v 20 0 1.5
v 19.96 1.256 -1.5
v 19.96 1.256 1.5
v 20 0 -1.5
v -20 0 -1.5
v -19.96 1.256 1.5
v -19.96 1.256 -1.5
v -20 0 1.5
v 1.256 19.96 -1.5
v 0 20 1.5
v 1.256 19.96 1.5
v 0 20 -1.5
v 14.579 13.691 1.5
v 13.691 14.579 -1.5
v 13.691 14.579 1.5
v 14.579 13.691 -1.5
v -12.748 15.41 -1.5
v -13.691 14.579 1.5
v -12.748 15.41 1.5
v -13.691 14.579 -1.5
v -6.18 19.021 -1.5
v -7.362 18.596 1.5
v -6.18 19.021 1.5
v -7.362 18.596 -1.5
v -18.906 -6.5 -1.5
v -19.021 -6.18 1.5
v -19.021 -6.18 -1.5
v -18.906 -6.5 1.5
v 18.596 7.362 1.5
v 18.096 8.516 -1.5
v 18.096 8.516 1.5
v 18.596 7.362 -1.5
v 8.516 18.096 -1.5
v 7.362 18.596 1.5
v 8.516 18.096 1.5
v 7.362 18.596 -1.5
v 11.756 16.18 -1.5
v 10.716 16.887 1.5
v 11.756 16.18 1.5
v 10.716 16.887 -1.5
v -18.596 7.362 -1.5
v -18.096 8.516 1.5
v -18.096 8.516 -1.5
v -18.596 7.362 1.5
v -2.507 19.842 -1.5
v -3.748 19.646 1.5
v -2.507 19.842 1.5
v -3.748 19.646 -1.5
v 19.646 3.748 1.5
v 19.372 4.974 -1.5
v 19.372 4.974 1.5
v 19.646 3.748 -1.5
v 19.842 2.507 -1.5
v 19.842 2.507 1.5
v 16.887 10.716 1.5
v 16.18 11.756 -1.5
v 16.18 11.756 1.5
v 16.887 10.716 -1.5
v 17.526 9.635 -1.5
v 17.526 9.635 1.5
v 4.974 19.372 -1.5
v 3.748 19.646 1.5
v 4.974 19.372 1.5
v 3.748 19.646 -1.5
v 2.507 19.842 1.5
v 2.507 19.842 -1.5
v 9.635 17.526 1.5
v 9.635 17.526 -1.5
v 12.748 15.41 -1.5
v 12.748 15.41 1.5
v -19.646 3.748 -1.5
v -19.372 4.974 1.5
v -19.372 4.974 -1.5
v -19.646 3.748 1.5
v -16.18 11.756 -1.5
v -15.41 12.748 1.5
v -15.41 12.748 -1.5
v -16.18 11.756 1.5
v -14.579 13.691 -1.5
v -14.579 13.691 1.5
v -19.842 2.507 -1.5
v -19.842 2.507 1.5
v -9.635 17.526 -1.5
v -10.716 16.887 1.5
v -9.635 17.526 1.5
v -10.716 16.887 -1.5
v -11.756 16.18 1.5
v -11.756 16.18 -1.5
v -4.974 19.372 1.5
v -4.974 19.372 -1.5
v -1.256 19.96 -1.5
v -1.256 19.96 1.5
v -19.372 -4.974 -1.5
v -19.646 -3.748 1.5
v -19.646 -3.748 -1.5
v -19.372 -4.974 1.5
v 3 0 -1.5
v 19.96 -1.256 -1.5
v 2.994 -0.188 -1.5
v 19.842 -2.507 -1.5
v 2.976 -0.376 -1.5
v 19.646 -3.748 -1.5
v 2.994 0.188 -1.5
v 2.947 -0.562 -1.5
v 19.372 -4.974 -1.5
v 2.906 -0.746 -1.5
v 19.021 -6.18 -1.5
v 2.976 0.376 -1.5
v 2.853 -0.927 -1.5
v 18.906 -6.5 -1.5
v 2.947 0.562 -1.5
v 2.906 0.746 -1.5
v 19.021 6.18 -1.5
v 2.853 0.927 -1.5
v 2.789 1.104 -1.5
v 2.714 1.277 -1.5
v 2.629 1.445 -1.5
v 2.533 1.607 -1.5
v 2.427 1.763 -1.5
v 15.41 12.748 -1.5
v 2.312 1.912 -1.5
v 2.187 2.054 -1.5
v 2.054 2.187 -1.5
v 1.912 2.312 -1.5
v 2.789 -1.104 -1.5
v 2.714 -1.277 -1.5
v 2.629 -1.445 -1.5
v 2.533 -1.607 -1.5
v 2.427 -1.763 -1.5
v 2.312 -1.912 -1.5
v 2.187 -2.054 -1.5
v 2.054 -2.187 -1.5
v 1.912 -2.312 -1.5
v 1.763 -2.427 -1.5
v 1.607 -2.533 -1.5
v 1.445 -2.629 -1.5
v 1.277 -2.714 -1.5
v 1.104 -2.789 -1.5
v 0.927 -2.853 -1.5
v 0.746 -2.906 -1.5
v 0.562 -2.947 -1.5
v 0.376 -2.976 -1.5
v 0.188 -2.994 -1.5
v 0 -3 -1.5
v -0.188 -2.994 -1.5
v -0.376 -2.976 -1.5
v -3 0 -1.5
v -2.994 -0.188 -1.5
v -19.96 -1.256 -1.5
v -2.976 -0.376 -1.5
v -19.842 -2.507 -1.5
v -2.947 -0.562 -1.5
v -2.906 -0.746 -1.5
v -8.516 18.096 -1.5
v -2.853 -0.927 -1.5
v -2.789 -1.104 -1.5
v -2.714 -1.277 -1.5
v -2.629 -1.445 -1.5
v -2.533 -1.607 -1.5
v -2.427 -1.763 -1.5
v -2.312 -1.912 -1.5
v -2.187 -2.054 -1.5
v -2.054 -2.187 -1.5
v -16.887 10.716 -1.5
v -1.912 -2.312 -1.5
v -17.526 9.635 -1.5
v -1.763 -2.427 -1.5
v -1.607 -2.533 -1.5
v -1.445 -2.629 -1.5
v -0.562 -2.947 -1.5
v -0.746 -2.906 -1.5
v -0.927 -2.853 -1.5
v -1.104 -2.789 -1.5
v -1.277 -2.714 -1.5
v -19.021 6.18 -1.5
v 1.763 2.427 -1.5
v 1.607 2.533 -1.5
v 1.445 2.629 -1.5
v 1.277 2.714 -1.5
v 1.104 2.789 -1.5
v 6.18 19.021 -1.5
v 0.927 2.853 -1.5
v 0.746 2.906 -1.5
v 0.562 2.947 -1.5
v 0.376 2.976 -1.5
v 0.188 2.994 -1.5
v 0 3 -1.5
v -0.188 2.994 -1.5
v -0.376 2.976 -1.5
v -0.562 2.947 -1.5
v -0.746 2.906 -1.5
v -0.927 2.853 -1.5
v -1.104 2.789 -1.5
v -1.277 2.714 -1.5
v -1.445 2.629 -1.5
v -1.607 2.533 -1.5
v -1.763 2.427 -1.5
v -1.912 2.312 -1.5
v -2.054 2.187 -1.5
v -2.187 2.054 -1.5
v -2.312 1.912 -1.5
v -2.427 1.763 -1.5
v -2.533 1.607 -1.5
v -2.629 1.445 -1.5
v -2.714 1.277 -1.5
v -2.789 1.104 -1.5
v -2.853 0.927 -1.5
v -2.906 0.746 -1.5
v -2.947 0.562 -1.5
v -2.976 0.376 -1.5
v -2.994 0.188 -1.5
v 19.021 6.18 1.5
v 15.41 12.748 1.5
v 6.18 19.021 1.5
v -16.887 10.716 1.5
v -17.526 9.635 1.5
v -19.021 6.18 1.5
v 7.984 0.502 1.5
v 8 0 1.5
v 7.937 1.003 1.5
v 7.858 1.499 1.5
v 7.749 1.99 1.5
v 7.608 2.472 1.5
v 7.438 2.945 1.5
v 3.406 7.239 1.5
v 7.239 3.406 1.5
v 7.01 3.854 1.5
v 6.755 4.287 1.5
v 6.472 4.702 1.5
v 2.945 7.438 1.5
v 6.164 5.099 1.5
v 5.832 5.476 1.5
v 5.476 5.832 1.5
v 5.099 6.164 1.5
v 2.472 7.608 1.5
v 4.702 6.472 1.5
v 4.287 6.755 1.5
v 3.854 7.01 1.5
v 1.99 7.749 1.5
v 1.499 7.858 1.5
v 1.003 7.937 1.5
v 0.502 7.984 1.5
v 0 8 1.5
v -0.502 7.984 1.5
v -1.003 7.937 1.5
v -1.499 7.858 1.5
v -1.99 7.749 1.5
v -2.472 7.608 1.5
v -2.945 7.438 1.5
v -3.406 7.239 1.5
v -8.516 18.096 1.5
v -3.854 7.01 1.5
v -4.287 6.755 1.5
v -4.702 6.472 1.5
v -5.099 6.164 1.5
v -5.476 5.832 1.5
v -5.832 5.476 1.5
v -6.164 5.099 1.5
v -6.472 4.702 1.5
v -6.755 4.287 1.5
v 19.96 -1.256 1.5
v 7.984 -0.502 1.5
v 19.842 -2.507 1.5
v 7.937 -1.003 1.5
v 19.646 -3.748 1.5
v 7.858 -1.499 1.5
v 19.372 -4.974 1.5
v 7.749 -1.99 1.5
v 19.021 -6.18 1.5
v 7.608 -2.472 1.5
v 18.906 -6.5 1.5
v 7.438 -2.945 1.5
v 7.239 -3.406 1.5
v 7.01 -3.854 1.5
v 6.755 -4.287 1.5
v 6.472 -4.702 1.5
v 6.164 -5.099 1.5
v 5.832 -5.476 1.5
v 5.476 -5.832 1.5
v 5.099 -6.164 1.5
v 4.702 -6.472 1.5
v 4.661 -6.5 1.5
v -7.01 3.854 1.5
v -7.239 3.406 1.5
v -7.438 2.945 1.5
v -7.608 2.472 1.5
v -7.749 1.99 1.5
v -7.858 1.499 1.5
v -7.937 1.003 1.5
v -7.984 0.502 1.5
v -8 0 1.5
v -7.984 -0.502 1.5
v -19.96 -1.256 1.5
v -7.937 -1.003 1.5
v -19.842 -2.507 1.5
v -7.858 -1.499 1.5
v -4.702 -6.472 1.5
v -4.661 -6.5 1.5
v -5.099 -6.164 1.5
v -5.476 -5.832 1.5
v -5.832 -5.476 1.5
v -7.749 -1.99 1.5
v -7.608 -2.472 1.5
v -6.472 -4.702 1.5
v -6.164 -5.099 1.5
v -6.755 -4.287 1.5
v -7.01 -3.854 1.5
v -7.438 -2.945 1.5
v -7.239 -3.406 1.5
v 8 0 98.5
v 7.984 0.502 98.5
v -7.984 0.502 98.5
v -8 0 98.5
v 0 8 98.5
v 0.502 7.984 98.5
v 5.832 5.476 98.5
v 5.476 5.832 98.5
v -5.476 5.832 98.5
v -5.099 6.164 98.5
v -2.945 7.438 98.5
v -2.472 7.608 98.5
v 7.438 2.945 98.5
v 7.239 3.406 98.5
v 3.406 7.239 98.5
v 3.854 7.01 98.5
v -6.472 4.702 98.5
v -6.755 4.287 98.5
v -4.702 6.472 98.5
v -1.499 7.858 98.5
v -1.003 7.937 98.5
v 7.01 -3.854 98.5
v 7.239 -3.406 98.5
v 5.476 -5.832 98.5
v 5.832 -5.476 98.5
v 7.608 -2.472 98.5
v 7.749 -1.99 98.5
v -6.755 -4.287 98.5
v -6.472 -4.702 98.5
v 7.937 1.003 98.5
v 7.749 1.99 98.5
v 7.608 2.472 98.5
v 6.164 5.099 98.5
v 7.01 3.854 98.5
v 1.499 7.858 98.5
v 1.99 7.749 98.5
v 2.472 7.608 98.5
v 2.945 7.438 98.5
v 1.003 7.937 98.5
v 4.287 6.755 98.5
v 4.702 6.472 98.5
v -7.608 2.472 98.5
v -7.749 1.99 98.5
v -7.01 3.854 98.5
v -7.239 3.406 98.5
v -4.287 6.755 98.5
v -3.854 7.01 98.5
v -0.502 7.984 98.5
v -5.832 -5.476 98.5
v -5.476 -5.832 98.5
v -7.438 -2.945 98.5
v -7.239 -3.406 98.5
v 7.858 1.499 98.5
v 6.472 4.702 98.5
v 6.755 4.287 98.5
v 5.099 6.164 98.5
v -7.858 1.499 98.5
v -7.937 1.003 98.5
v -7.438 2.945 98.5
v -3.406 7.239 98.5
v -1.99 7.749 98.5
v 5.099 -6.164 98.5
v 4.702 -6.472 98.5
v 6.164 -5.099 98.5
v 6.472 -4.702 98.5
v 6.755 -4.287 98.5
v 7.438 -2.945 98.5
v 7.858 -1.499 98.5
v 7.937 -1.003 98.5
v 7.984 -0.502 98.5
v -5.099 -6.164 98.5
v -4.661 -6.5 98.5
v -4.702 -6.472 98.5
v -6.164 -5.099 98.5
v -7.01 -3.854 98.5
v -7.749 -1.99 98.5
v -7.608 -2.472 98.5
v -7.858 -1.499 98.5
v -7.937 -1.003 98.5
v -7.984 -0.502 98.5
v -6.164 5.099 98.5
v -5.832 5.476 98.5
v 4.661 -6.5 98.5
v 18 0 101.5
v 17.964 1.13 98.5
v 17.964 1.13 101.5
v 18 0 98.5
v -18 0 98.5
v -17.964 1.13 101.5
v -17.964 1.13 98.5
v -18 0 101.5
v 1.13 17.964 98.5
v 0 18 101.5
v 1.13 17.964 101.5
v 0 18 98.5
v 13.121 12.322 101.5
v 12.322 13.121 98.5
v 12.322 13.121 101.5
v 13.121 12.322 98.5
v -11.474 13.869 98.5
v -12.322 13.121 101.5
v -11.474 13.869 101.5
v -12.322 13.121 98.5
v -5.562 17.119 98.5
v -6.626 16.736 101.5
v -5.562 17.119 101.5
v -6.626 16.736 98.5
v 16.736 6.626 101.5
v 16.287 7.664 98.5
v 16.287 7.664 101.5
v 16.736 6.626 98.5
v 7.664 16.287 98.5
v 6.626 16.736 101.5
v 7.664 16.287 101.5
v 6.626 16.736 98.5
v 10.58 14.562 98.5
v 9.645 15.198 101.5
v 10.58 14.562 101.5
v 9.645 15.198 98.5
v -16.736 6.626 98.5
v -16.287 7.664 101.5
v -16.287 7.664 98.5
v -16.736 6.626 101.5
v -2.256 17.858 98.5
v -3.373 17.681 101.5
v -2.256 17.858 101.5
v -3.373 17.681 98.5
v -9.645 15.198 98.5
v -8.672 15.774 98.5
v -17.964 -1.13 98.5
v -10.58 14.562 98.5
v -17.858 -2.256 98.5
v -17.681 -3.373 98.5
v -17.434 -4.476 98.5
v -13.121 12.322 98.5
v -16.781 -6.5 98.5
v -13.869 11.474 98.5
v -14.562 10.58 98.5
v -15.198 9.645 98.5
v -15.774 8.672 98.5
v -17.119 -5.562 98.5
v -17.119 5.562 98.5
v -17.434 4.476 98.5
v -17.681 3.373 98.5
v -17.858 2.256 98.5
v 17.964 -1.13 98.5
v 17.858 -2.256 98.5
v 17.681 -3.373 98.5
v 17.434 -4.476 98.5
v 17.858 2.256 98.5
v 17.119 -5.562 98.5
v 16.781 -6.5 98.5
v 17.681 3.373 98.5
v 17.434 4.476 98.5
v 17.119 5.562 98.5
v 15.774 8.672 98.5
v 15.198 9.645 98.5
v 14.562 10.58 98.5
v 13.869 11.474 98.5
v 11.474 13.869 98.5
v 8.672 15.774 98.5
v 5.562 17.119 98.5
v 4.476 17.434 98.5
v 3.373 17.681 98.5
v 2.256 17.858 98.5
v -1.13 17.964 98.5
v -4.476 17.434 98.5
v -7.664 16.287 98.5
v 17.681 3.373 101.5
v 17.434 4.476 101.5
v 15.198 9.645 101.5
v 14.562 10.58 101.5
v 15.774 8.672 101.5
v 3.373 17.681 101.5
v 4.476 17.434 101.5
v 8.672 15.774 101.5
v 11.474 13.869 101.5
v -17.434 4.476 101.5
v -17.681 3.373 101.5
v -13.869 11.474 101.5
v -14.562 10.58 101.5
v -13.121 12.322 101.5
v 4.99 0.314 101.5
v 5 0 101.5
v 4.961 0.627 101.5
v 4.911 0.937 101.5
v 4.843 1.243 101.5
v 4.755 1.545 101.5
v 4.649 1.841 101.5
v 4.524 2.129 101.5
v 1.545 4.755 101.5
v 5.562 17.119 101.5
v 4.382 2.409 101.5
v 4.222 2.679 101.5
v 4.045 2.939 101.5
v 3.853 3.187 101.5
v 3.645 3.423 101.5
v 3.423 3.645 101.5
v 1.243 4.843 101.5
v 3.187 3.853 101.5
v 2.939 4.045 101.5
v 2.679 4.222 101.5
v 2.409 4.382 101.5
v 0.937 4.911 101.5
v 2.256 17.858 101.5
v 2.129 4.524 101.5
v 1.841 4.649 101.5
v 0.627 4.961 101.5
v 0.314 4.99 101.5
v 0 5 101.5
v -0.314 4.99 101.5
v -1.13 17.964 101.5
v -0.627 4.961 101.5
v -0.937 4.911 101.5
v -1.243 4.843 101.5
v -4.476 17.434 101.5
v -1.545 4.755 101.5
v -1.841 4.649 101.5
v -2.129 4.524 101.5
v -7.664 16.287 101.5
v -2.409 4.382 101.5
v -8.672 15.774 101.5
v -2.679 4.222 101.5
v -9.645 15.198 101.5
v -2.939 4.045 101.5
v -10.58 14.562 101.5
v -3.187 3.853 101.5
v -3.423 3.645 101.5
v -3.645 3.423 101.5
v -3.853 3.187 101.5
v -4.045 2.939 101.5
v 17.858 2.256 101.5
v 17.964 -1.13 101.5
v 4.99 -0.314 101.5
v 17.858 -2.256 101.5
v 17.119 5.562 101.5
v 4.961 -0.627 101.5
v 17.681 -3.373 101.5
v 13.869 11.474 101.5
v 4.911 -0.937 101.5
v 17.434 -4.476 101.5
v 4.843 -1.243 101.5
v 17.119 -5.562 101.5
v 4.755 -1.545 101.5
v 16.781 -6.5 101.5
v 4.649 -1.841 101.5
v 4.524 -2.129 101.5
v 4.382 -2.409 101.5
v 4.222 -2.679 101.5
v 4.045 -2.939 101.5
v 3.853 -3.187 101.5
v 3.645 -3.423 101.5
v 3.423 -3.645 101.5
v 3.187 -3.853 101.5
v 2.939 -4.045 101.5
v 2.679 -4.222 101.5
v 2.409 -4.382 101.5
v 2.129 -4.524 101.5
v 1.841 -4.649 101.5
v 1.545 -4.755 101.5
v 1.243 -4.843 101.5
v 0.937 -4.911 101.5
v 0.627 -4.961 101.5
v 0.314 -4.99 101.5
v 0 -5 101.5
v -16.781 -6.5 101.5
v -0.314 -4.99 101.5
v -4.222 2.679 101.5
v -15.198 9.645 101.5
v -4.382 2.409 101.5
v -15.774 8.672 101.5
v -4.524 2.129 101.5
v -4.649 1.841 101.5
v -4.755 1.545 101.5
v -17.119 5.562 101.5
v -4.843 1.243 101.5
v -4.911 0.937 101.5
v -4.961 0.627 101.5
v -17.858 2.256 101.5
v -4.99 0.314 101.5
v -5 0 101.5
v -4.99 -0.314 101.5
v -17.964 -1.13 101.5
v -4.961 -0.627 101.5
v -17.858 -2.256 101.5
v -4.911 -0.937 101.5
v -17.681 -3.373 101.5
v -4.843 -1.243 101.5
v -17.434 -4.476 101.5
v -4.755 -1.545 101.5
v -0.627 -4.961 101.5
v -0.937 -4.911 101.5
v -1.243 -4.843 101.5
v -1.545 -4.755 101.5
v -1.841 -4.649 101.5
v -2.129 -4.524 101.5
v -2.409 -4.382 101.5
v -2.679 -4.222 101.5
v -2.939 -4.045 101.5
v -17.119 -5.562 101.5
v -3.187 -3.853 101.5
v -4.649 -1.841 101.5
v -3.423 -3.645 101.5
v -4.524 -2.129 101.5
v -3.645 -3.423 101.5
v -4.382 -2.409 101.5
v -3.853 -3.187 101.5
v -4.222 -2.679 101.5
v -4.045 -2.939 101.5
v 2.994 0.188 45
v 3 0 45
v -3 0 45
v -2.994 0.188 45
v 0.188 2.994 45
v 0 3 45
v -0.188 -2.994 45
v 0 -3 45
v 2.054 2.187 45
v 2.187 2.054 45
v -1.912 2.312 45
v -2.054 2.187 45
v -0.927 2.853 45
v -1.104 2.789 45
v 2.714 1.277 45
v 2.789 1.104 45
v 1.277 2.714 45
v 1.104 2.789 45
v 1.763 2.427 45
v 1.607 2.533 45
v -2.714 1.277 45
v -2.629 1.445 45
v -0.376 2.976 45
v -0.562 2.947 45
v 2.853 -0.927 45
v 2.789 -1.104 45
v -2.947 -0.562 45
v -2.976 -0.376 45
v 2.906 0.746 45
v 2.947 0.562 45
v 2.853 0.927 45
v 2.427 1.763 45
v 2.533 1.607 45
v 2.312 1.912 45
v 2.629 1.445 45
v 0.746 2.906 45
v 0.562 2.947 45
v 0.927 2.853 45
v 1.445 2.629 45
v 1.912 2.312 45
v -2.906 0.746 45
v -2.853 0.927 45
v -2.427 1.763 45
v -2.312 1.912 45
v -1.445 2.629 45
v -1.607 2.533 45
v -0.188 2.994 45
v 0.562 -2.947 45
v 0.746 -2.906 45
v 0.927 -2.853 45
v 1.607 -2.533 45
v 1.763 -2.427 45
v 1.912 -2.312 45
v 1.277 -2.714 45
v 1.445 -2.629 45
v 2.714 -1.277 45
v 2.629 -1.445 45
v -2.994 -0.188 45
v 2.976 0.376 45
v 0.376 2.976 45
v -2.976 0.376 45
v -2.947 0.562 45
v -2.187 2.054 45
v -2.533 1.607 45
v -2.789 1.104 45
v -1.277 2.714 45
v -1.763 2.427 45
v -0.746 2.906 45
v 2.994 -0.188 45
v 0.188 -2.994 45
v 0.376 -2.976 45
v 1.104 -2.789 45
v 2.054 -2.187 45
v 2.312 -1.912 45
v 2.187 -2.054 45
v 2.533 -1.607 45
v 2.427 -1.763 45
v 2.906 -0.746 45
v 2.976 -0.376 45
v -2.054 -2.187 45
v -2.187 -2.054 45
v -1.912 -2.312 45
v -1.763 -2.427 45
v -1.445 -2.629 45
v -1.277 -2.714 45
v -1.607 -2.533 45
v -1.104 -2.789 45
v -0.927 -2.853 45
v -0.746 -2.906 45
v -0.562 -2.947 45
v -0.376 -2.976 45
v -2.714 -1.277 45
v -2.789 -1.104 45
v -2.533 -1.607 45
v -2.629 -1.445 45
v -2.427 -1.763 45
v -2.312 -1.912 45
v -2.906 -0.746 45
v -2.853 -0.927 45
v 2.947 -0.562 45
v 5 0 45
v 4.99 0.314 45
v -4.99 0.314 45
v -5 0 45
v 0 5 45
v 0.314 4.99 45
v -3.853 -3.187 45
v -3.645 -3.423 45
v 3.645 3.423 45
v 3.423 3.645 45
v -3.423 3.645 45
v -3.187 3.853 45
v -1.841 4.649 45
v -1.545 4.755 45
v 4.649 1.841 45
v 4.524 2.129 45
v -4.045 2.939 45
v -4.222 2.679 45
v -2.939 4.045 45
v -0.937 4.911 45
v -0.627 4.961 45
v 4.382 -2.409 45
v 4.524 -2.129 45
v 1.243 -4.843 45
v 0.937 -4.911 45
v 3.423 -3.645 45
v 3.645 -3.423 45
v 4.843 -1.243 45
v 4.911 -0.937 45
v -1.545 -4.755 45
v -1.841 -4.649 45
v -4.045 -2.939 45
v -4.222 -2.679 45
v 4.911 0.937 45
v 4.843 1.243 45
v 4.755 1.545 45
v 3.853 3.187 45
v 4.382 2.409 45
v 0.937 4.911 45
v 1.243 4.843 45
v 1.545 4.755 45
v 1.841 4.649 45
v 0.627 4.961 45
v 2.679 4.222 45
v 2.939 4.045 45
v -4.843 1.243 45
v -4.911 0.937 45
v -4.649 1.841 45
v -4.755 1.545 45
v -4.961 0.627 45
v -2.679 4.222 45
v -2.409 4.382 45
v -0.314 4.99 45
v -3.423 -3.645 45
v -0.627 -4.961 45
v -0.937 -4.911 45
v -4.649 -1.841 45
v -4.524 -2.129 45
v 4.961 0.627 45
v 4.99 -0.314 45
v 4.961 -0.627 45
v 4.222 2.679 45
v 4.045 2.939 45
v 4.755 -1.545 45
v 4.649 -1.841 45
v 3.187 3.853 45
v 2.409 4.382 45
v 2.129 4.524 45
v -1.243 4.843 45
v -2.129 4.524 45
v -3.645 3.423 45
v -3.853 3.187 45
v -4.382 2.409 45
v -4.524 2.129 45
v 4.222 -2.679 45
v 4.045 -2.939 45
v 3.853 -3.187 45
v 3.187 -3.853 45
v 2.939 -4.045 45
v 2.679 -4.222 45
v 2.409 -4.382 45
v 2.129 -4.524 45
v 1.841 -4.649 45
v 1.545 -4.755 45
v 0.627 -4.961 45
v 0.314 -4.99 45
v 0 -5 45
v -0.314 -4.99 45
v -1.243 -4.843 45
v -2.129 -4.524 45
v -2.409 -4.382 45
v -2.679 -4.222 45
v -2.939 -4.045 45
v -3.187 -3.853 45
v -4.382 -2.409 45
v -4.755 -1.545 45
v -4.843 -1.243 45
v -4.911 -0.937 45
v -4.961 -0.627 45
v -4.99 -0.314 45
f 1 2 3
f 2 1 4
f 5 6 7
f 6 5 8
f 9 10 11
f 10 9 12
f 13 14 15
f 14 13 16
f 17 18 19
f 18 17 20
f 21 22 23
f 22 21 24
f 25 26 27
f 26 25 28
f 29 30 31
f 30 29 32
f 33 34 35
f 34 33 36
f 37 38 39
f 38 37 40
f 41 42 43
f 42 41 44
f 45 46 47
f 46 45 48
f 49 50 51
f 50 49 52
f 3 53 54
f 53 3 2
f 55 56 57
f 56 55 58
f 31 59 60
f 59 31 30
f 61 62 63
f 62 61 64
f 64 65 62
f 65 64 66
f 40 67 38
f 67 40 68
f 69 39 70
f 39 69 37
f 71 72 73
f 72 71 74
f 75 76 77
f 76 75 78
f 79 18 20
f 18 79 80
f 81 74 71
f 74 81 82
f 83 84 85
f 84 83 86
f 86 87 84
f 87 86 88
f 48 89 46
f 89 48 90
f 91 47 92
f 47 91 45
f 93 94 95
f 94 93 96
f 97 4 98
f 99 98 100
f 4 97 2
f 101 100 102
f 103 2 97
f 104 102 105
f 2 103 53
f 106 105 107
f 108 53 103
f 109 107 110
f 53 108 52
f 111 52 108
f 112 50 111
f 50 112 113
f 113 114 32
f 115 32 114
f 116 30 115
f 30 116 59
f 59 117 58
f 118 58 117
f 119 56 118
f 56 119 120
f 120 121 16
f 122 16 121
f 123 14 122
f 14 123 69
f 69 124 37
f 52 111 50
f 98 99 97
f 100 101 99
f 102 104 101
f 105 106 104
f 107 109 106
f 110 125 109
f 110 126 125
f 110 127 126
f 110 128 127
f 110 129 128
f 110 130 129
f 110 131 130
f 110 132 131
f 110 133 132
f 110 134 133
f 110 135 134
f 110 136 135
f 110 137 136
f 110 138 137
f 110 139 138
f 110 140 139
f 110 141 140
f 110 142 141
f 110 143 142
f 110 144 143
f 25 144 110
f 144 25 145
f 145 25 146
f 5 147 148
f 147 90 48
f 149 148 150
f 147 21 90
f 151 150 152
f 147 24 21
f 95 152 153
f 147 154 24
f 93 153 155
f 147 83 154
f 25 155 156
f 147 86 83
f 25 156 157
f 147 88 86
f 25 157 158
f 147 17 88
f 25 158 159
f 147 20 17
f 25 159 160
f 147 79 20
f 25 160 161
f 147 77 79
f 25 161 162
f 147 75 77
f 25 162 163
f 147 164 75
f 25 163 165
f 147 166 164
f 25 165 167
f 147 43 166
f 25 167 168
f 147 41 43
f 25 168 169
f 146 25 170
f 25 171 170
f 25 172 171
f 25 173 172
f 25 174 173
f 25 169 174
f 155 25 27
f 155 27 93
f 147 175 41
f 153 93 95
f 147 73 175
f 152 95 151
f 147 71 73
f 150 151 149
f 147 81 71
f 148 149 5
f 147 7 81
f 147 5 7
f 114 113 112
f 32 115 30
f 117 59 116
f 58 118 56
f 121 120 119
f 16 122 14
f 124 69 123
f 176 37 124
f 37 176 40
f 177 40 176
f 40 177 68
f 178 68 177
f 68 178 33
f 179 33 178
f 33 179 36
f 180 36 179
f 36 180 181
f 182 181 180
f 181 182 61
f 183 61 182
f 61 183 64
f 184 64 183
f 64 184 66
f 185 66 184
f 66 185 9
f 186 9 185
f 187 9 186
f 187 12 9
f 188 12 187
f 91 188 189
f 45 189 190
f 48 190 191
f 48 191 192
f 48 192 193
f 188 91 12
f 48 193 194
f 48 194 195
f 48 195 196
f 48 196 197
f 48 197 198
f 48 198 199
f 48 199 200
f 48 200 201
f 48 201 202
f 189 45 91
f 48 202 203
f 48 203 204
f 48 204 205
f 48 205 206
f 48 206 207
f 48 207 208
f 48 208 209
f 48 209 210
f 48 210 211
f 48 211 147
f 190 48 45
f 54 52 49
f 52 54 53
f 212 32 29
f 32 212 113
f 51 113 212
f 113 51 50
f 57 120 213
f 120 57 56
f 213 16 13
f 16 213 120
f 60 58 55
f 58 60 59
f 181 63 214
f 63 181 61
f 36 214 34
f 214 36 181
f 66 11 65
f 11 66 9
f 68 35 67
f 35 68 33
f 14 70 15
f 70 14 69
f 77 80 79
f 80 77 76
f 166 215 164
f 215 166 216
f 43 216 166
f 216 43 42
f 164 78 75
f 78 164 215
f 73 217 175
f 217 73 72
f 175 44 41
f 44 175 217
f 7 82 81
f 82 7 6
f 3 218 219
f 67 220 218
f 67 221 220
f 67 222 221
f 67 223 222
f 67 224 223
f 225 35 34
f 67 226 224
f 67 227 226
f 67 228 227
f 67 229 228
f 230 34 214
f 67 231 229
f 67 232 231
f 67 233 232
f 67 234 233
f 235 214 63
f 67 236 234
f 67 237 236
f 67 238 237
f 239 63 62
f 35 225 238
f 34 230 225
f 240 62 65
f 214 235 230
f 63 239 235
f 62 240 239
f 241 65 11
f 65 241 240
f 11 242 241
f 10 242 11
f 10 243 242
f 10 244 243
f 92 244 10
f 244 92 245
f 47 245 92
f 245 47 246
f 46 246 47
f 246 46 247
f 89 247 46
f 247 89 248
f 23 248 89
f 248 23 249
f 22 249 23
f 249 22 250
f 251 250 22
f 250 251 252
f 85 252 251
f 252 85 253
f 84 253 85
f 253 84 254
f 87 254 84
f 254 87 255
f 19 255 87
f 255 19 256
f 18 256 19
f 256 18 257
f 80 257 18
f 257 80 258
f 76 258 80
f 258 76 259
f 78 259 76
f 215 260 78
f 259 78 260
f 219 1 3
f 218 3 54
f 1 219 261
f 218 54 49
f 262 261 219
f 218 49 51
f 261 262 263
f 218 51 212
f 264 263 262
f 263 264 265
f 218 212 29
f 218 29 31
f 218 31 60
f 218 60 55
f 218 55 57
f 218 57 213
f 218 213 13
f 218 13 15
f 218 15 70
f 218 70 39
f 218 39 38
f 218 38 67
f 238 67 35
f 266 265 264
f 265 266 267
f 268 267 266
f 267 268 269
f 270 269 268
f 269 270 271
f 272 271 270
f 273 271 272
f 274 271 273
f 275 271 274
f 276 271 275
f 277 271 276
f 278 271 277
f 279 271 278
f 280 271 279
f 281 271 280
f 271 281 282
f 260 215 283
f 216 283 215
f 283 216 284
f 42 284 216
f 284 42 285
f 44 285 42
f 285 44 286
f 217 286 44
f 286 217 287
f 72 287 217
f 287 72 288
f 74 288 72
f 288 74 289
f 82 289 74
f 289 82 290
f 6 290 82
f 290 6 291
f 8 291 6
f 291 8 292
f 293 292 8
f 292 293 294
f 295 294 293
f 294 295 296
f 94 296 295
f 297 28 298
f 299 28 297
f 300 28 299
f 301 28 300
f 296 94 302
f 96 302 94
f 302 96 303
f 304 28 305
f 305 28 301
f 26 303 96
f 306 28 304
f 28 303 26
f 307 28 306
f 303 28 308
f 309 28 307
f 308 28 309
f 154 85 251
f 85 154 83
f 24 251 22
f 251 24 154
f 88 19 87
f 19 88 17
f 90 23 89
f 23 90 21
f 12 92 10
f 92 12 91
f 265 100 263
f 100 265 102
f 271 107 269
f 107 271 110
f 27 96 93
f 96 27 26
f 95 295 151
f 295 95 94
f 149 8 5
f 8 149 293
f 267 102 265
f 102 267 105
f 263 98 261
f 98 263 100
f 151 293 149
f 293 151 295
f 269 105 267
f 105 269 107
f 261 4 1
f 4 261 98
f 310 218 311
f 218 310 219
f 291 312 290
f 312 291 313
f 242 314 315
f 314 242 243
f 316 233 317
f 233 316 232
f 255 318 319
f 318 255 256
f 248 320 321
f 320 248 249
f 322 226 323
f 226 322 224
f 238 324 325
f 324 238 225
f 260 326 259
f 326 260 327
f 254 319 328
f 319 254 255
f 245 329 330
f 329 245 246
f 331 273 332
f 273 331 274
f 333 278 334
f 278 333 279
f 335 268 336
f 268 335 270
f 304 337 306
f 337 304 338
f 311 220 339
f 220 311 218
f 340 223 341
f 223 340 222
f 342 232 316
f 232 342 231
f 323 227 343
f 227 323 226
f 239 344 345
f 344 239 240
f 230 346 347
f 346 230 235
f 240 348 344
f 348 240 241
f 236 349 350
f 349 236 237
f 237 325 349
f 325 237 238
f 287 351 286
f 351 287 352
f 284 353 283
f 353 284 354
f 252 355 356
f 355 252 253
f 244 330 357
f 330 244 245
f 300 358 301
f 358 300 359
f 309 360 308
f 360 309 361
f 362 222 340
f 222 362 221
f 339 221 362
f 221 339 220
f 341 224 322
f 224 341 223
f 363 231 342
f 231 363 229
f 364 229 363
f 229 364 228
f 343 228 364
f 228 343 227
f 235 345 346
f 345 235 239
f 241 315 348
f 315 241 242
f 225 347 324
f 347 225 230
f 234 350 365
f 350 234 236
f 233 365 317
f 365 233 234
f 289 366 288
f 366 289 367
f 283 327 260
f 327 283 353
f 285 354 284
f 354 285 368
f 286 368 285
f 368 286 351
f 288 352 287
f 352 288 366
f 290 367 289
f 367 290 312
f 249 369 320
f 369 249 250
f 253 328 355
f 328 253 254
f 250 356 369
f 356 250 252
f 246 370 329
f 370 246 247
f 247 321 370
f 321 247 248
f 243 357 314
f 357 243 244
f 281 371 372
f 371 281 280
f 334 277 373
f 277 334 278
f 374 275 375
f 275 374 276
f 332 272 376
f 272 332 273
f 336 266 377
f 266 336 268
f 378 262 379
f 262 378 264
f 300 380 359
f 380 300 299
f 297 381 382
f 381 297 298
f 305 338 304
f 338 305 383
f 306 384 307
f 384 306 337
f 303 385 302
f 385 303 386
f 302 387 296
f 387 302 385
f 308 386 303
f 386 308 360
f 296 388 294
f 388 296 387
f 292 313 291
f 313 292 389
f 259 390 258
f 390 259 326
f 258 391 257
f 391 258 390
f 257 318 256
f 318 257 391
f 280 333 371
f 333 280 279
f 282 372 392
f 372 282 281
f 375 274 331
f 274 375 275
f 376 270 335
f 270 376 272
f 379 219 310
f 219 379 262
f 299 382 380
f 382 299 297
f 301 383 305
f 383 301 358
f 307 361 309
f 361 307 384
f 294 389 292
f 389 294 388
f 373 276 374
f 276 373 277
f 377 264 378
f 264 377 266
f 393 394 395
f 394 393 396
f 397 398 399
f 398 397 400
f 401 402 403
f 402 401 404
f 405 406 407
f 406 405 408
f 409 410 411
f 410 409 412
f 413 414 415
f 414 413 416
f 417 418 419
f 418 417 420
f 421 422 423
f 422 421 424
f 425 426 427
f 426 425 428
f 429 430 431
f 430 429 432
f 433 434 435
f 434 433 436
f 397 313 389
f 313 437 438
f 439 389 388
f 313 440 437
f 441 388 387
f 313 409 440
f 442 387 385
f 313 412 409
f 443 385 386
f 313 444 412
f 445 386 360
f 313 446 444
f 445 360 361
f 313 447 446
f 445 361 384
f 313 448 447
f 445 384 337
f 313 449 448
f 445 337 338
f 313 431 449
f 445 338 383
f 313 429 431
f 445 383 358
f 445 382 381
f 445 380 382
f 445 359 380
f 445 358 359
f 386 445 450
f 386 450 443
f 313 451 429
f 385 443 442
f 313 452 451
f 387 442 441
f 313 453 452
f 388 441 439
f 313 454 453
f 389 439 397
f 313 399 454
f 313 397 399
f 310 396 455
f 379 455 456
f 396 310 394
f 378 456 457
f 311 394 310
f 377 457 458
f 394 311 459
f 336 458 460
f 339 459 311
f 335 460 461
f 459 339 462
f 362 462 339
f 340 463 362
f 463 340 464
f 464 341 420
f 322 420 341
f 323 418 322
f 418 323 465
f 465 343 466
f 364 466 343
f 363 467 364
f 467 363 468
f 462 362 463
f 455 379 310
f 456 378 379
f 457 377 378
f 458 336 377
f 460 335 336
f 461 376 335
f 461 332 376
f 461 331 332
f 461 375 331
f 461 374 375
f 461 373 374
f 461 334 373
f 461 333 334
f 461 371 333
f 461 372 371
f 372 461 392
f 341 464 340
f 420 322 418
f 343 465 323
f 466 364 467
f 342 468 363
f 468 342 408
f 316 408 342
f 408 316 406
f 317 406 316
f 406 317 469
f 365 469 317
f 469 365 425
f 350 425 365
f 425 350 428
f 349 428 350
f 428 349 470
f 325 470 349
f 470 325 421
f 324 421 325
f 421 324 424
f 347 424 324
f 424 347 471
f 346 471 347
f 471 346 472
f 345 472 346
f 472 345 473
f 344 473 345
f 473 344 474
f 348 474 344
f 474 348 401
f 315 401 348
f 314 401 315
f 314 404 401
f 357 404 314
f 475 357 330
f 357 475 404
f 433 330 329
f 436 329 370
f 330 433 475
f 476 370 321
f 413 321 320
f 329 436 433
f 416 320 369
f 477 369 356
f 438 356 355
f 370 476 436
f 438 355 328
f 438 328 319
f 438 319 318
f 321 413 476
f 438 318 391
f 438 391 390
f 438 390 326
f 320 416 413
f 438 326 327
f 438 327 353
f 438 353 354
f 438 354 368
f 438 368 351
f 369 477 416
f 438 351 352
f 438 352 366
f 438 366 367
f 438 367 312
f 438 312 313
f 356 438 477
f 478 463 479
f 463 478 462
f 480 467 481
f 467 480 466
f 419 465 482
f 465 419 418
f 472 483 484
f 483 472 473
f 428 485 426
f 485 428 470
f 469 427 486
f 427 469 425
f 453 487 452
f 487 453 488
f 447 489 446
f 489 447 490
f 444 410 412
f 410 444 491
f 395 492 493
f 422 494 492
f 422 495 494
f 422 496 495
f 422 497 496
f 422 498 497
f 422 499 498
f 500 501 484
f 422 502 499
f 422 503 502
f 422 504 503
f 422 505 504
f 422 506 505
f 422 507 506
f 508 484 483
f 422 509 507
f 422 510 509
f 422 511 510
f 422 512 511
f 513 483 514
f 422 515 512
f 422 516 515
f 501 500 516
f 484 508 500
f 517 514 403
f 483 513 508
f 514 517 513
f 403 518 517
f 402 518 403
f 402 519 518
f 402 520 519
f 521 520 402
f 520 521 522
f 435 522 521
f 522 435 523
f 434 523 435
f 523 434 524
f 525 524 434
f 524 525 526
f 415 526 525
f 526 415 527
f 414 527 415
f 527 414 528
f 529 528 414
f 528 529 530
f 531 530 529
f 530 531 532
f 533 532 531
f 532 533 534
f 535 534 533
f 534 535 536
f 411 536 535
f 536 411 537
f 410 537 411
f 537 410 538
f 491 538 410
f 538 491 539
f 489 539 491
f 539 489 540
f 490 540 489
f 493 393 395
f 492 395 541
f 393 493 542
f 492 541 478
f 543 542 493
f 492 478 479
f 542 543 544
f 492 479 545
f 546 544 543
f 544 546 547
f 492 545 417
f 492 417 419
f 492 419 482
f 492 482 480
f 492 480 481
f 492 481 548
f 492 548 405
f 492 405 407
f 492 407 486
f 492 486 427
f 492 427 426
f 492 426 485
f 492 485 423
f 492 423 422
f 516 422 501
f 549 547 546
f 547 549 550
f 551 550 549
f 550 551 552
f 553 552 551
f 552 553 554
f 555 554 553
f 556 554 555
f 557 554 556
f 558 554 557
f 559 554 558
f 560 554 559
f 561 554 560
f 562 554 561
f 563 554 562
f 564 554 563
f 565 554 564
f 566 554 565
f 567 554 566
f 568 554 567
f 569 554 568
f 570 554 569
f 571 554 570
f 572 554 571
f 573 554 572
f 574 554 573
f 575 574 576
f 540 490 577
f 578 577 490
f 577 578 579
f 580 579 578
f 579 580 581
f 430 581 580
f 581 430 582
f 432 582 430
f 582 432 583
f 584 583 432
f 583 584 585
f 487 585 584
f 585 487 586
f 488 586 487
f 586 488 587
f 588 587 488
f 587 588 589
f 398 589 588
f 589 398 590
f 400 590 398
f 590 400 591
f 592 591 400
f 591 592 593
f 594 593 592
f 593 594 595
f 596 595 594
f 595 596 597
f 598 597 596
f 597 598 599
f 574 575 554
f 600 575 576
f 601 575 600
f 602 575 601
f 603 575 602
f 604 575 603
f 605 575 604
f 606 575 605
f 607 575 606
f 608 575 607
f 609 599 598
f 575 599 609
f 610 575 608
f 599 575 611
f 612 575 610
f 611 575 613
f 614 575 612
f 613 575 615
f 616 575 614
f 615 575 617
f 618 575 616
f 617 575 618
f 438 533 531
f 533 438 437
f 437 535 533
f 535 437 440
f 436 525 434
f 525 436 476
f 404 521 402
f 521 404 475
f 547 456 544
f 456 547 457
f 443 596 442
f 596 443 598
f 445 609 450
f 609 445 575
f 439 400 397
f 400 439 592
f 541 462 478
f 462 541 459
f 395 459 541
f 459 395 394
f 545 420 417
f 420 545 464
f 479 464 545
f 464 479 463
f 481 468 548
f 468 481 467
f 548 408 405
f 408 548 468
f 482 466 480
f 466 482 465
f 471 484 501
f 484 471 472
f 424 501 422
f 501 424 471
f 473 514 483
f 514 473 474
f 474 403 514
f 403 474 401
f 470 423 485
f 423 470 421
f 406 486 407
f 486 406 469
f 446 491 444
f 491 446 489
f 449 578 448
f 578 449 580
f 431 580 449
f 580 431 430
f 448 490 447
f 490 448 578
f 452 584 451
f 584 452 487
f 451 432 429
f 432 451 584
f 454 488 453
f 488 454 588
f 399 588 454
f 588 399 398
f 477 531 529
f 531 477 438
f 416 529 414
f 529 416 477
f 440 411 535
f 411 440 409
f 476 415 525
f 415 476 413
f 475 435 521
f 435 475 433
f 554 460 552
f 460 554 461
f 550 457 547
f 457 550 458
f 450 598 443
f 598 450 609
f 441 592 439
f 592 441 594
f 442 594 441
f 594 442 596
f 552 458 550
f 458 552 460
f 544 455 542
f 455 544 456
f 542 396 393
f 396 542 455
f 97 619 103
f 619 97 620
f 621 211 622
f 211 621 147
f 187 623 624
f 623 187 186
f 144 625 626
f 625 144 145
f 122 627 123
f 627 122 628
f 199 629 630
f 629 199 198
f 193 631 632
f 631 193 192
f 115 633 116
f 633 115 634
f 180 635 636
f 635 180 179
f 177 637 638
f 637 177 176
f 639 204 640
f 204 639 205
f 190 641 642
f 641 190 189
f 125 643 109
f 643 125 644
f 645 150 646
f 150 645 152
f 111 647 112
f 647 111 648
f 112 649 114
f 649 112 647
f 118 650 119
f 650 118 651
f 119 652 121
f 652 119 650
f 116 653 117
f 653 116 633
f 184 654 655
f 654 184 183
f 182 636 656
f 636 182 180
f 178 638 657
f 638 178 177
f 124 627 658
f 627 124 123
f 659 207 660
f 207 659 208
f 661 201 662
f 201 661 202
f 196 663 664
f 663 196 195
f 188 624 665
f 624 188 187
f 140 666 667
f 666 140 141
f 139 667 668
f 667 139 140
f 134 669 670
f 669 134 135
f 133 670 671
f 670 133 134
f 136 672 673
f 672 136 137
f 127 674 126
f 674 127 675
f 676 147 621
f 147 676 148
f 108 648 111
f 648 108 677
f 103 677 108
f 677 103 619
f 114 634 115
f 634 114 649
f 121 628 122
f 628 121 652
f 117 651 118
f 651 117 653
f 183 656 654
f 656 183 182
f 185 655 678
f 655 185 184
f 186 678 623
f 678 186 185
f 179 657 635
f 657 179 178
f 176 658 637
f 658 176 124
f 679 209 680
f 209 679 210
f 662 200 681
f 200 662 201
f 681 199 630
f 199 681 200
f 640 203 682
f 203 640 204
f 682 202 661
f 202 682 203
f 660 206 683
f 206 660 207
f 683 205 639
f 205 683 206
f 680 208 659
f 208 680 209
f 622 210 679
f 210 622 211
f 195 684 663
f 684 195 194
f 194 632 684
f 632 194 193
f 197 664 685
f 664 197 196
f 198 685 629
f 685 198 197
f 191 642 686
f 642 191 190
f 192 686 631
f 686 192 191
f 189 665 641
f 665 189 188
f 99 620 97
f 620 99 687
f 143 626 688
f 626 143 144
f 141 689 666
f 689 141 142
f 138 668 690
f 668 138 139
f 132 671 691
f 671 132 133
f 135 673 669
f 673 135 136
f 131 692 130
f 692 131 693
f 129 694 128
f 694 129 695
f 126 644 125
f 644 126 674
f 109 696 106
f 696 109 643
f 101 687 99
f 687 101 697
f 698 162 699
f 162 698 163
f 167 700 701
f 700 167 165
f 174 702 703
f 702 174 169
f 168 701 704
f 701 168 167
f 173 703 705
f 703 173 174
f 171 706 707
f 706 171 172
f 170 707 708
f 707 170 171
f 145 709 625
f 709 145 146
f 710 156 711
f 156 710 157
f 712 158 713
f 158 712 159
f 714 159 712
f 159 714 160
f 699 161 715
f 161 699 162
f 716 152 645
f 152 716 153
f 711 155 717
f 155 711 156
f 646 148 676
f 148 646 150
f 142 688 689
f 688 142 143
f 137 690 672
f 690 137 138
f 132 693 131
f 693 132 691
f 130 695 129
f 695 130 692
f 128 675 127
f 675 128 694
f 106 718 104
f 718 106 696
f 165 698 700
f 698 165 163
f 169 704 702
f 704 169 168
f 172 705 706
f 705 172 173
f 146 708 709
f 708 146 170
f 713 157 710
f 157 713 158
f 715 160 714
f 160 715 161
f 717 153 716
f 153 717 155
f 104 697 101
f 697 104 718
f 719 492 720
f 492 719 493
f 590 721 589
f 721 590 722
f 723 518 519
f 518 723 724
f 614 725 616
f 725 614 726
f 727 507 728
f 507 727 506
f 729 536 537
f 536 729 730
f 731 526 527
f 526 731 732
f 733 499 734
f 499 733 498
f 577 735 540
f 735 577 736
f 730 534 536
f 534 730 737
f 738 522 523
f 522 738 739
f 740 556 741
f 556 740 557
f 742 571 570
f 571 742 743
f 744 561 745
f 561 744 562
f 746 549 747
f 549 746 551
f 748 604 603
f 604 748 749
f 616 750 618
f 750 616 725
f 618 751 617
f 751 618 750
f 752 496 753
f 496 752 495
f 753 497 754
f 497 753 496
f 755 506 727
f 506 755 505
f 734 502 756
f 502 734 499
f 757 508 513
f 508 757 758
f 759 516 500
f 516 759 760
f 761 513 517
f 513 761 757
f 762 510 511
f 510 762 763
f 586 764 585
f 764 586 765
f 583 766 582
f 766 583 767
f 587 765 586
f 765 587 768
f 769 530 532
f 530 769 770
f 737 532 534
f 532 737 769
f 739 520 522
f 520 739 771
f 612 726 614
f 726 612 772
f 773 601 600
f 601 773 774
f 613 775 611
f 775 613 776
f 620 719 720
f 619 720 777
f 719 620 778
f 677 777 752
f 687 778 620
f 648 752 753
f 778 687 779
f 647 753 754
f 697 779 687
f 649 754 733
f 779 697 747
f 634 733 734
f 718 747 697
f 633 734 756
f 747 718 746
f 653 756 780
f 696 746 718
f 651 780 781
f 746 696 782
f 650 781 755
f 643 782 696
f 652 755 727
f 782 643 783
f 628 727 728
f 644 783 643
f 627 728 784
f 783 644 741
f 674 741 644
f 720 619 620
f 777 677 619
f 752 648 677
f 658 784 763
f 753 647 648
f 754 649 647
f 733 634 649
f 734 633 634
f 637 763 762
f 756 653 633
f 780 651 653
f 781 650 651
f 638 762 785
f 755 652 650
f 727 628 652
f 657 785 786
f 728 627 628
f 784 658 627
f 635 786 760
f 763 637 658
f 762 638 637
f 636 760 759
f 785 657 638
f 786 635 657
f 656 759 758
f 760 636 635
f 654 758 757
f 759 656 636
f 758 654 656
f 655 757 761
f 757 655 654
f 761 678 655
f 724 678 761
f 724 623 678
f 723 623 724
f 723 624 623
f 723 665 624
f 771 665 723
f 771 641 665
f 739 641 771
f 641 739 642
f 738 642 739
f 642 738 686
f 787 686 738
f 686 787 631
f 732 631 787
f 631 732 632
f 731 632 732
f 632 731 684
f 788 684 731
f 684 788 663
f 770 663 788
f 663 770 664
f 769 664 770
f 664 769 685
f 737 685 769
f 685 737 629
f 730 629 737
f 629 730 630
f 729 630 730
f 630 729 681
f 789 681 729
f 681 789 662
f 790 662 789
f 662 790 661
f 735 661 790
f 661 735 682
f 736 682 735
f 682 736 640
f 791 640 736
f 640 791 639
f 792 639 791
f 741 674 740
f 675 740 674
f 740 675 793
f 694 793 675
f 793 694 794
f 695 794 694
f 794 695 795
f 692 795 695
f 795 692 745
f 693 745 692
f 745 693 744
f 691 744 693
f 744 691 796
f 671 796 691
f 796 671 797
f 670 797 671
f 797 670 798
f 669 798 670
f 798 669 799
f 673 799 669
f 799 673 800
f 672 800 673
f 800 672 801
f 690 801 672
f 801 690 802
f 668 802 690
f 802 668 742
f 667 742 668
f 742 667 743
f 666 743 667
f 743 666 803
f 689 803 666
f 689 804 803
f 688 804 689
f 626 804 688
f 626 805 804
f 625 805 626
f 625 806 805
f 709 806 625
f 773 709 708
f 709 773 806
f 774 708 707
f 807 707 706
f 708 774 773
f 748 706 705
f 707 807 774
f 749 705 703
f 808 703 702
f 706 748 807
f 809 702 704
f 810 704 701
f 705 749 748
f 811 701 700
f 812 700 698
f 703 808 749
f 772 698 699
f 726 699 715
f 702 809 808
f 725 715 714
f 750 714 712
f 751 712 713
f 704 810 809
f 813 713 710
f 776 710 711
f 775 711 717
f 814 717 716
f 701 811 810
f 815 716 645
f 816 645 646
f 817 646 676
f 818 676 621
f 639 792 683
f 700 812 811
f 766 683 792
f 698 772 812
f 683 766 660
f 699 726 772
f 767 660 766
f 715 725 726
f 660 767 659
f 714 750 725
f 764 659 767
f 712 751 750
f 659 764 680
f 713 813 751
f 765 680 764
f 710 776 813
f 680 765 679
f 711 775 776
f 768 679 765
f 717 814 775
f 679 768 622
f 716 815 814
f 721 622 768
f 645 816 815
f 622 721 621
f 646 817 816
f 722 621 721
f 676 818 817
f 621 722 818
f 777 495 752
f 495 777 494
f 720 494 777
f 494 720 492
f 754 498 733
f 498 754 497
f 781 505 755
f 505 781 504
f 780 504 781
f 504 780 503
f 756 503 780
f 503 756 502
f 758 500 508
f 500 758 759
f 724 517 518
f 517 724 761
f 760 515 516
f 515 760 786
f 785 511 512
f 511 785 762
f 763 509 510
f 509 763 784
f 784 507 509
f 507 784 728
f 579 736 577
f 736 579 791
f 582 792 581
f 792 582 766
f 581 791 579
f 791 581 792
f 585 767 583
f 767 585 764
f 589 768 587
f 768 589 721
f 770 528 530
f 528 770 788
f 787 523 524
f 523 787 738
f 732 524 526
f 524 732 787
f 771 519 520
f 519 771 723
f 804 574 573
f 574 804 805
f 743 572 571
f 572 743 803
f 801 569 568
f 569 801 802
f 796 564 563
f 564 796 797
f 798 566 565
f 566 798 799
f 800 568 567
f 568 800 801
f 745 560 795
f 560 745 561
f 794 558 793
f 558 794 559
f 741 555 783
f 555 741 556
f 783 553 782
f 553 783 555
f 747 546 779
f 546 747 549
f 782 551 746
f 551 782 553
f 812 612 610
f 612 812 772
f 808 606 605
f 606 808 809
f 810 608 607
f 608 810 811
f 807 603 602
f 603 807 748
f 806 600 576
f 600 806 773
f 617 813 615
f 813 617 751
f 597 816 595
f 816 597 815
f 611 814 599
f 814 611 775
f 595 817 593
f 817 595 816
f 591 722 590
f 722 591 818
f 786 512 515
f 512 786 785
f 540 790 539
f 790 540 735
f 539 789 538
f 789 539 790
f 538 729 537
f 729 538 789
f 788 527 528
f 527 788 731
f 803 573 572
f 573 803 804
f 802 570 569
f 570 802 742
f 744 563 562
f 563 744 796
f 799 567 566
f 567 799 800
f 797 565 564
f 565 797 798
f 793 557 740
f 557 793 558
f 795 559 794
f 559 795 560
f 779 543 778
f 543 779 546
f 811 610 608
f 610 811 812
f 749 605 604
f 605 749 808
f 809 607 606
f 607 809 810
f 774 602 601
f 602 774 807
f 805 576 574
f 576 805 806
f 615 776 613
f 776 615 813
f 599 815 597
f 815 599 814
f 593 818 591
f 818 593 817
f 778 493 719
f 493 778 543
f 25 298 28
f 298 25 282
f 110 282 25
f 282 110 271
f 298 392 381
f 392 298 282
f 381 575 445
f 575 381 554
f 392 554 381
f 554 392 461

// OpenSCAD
$fn = 100;

difference() {
    union() {
        // Base Plate
        cylinder(h=3, r=20, center=true);

        // Pin
        translate([0, 0, 50]) {
            cylinder(h=100, r=8, center = true);
        }
        
        // Front Plate
        translate([0, 0, 100]) {
            cylinder(h=3, r=18, center=true);
        }
    }
    
    // Screw hole
    translate([0, 0, 52]) {
        cylinder(h=110, r=3, center=true);
    }
    
    // Mounting hole
    translate([0, 0, 45]) {
        cylinder(h=58, r=5, center=false);
    }
    
    // Printing surface
    translate([-22, -26.5, -5]) {
        cube([44, 20, 110]);
    }
}
